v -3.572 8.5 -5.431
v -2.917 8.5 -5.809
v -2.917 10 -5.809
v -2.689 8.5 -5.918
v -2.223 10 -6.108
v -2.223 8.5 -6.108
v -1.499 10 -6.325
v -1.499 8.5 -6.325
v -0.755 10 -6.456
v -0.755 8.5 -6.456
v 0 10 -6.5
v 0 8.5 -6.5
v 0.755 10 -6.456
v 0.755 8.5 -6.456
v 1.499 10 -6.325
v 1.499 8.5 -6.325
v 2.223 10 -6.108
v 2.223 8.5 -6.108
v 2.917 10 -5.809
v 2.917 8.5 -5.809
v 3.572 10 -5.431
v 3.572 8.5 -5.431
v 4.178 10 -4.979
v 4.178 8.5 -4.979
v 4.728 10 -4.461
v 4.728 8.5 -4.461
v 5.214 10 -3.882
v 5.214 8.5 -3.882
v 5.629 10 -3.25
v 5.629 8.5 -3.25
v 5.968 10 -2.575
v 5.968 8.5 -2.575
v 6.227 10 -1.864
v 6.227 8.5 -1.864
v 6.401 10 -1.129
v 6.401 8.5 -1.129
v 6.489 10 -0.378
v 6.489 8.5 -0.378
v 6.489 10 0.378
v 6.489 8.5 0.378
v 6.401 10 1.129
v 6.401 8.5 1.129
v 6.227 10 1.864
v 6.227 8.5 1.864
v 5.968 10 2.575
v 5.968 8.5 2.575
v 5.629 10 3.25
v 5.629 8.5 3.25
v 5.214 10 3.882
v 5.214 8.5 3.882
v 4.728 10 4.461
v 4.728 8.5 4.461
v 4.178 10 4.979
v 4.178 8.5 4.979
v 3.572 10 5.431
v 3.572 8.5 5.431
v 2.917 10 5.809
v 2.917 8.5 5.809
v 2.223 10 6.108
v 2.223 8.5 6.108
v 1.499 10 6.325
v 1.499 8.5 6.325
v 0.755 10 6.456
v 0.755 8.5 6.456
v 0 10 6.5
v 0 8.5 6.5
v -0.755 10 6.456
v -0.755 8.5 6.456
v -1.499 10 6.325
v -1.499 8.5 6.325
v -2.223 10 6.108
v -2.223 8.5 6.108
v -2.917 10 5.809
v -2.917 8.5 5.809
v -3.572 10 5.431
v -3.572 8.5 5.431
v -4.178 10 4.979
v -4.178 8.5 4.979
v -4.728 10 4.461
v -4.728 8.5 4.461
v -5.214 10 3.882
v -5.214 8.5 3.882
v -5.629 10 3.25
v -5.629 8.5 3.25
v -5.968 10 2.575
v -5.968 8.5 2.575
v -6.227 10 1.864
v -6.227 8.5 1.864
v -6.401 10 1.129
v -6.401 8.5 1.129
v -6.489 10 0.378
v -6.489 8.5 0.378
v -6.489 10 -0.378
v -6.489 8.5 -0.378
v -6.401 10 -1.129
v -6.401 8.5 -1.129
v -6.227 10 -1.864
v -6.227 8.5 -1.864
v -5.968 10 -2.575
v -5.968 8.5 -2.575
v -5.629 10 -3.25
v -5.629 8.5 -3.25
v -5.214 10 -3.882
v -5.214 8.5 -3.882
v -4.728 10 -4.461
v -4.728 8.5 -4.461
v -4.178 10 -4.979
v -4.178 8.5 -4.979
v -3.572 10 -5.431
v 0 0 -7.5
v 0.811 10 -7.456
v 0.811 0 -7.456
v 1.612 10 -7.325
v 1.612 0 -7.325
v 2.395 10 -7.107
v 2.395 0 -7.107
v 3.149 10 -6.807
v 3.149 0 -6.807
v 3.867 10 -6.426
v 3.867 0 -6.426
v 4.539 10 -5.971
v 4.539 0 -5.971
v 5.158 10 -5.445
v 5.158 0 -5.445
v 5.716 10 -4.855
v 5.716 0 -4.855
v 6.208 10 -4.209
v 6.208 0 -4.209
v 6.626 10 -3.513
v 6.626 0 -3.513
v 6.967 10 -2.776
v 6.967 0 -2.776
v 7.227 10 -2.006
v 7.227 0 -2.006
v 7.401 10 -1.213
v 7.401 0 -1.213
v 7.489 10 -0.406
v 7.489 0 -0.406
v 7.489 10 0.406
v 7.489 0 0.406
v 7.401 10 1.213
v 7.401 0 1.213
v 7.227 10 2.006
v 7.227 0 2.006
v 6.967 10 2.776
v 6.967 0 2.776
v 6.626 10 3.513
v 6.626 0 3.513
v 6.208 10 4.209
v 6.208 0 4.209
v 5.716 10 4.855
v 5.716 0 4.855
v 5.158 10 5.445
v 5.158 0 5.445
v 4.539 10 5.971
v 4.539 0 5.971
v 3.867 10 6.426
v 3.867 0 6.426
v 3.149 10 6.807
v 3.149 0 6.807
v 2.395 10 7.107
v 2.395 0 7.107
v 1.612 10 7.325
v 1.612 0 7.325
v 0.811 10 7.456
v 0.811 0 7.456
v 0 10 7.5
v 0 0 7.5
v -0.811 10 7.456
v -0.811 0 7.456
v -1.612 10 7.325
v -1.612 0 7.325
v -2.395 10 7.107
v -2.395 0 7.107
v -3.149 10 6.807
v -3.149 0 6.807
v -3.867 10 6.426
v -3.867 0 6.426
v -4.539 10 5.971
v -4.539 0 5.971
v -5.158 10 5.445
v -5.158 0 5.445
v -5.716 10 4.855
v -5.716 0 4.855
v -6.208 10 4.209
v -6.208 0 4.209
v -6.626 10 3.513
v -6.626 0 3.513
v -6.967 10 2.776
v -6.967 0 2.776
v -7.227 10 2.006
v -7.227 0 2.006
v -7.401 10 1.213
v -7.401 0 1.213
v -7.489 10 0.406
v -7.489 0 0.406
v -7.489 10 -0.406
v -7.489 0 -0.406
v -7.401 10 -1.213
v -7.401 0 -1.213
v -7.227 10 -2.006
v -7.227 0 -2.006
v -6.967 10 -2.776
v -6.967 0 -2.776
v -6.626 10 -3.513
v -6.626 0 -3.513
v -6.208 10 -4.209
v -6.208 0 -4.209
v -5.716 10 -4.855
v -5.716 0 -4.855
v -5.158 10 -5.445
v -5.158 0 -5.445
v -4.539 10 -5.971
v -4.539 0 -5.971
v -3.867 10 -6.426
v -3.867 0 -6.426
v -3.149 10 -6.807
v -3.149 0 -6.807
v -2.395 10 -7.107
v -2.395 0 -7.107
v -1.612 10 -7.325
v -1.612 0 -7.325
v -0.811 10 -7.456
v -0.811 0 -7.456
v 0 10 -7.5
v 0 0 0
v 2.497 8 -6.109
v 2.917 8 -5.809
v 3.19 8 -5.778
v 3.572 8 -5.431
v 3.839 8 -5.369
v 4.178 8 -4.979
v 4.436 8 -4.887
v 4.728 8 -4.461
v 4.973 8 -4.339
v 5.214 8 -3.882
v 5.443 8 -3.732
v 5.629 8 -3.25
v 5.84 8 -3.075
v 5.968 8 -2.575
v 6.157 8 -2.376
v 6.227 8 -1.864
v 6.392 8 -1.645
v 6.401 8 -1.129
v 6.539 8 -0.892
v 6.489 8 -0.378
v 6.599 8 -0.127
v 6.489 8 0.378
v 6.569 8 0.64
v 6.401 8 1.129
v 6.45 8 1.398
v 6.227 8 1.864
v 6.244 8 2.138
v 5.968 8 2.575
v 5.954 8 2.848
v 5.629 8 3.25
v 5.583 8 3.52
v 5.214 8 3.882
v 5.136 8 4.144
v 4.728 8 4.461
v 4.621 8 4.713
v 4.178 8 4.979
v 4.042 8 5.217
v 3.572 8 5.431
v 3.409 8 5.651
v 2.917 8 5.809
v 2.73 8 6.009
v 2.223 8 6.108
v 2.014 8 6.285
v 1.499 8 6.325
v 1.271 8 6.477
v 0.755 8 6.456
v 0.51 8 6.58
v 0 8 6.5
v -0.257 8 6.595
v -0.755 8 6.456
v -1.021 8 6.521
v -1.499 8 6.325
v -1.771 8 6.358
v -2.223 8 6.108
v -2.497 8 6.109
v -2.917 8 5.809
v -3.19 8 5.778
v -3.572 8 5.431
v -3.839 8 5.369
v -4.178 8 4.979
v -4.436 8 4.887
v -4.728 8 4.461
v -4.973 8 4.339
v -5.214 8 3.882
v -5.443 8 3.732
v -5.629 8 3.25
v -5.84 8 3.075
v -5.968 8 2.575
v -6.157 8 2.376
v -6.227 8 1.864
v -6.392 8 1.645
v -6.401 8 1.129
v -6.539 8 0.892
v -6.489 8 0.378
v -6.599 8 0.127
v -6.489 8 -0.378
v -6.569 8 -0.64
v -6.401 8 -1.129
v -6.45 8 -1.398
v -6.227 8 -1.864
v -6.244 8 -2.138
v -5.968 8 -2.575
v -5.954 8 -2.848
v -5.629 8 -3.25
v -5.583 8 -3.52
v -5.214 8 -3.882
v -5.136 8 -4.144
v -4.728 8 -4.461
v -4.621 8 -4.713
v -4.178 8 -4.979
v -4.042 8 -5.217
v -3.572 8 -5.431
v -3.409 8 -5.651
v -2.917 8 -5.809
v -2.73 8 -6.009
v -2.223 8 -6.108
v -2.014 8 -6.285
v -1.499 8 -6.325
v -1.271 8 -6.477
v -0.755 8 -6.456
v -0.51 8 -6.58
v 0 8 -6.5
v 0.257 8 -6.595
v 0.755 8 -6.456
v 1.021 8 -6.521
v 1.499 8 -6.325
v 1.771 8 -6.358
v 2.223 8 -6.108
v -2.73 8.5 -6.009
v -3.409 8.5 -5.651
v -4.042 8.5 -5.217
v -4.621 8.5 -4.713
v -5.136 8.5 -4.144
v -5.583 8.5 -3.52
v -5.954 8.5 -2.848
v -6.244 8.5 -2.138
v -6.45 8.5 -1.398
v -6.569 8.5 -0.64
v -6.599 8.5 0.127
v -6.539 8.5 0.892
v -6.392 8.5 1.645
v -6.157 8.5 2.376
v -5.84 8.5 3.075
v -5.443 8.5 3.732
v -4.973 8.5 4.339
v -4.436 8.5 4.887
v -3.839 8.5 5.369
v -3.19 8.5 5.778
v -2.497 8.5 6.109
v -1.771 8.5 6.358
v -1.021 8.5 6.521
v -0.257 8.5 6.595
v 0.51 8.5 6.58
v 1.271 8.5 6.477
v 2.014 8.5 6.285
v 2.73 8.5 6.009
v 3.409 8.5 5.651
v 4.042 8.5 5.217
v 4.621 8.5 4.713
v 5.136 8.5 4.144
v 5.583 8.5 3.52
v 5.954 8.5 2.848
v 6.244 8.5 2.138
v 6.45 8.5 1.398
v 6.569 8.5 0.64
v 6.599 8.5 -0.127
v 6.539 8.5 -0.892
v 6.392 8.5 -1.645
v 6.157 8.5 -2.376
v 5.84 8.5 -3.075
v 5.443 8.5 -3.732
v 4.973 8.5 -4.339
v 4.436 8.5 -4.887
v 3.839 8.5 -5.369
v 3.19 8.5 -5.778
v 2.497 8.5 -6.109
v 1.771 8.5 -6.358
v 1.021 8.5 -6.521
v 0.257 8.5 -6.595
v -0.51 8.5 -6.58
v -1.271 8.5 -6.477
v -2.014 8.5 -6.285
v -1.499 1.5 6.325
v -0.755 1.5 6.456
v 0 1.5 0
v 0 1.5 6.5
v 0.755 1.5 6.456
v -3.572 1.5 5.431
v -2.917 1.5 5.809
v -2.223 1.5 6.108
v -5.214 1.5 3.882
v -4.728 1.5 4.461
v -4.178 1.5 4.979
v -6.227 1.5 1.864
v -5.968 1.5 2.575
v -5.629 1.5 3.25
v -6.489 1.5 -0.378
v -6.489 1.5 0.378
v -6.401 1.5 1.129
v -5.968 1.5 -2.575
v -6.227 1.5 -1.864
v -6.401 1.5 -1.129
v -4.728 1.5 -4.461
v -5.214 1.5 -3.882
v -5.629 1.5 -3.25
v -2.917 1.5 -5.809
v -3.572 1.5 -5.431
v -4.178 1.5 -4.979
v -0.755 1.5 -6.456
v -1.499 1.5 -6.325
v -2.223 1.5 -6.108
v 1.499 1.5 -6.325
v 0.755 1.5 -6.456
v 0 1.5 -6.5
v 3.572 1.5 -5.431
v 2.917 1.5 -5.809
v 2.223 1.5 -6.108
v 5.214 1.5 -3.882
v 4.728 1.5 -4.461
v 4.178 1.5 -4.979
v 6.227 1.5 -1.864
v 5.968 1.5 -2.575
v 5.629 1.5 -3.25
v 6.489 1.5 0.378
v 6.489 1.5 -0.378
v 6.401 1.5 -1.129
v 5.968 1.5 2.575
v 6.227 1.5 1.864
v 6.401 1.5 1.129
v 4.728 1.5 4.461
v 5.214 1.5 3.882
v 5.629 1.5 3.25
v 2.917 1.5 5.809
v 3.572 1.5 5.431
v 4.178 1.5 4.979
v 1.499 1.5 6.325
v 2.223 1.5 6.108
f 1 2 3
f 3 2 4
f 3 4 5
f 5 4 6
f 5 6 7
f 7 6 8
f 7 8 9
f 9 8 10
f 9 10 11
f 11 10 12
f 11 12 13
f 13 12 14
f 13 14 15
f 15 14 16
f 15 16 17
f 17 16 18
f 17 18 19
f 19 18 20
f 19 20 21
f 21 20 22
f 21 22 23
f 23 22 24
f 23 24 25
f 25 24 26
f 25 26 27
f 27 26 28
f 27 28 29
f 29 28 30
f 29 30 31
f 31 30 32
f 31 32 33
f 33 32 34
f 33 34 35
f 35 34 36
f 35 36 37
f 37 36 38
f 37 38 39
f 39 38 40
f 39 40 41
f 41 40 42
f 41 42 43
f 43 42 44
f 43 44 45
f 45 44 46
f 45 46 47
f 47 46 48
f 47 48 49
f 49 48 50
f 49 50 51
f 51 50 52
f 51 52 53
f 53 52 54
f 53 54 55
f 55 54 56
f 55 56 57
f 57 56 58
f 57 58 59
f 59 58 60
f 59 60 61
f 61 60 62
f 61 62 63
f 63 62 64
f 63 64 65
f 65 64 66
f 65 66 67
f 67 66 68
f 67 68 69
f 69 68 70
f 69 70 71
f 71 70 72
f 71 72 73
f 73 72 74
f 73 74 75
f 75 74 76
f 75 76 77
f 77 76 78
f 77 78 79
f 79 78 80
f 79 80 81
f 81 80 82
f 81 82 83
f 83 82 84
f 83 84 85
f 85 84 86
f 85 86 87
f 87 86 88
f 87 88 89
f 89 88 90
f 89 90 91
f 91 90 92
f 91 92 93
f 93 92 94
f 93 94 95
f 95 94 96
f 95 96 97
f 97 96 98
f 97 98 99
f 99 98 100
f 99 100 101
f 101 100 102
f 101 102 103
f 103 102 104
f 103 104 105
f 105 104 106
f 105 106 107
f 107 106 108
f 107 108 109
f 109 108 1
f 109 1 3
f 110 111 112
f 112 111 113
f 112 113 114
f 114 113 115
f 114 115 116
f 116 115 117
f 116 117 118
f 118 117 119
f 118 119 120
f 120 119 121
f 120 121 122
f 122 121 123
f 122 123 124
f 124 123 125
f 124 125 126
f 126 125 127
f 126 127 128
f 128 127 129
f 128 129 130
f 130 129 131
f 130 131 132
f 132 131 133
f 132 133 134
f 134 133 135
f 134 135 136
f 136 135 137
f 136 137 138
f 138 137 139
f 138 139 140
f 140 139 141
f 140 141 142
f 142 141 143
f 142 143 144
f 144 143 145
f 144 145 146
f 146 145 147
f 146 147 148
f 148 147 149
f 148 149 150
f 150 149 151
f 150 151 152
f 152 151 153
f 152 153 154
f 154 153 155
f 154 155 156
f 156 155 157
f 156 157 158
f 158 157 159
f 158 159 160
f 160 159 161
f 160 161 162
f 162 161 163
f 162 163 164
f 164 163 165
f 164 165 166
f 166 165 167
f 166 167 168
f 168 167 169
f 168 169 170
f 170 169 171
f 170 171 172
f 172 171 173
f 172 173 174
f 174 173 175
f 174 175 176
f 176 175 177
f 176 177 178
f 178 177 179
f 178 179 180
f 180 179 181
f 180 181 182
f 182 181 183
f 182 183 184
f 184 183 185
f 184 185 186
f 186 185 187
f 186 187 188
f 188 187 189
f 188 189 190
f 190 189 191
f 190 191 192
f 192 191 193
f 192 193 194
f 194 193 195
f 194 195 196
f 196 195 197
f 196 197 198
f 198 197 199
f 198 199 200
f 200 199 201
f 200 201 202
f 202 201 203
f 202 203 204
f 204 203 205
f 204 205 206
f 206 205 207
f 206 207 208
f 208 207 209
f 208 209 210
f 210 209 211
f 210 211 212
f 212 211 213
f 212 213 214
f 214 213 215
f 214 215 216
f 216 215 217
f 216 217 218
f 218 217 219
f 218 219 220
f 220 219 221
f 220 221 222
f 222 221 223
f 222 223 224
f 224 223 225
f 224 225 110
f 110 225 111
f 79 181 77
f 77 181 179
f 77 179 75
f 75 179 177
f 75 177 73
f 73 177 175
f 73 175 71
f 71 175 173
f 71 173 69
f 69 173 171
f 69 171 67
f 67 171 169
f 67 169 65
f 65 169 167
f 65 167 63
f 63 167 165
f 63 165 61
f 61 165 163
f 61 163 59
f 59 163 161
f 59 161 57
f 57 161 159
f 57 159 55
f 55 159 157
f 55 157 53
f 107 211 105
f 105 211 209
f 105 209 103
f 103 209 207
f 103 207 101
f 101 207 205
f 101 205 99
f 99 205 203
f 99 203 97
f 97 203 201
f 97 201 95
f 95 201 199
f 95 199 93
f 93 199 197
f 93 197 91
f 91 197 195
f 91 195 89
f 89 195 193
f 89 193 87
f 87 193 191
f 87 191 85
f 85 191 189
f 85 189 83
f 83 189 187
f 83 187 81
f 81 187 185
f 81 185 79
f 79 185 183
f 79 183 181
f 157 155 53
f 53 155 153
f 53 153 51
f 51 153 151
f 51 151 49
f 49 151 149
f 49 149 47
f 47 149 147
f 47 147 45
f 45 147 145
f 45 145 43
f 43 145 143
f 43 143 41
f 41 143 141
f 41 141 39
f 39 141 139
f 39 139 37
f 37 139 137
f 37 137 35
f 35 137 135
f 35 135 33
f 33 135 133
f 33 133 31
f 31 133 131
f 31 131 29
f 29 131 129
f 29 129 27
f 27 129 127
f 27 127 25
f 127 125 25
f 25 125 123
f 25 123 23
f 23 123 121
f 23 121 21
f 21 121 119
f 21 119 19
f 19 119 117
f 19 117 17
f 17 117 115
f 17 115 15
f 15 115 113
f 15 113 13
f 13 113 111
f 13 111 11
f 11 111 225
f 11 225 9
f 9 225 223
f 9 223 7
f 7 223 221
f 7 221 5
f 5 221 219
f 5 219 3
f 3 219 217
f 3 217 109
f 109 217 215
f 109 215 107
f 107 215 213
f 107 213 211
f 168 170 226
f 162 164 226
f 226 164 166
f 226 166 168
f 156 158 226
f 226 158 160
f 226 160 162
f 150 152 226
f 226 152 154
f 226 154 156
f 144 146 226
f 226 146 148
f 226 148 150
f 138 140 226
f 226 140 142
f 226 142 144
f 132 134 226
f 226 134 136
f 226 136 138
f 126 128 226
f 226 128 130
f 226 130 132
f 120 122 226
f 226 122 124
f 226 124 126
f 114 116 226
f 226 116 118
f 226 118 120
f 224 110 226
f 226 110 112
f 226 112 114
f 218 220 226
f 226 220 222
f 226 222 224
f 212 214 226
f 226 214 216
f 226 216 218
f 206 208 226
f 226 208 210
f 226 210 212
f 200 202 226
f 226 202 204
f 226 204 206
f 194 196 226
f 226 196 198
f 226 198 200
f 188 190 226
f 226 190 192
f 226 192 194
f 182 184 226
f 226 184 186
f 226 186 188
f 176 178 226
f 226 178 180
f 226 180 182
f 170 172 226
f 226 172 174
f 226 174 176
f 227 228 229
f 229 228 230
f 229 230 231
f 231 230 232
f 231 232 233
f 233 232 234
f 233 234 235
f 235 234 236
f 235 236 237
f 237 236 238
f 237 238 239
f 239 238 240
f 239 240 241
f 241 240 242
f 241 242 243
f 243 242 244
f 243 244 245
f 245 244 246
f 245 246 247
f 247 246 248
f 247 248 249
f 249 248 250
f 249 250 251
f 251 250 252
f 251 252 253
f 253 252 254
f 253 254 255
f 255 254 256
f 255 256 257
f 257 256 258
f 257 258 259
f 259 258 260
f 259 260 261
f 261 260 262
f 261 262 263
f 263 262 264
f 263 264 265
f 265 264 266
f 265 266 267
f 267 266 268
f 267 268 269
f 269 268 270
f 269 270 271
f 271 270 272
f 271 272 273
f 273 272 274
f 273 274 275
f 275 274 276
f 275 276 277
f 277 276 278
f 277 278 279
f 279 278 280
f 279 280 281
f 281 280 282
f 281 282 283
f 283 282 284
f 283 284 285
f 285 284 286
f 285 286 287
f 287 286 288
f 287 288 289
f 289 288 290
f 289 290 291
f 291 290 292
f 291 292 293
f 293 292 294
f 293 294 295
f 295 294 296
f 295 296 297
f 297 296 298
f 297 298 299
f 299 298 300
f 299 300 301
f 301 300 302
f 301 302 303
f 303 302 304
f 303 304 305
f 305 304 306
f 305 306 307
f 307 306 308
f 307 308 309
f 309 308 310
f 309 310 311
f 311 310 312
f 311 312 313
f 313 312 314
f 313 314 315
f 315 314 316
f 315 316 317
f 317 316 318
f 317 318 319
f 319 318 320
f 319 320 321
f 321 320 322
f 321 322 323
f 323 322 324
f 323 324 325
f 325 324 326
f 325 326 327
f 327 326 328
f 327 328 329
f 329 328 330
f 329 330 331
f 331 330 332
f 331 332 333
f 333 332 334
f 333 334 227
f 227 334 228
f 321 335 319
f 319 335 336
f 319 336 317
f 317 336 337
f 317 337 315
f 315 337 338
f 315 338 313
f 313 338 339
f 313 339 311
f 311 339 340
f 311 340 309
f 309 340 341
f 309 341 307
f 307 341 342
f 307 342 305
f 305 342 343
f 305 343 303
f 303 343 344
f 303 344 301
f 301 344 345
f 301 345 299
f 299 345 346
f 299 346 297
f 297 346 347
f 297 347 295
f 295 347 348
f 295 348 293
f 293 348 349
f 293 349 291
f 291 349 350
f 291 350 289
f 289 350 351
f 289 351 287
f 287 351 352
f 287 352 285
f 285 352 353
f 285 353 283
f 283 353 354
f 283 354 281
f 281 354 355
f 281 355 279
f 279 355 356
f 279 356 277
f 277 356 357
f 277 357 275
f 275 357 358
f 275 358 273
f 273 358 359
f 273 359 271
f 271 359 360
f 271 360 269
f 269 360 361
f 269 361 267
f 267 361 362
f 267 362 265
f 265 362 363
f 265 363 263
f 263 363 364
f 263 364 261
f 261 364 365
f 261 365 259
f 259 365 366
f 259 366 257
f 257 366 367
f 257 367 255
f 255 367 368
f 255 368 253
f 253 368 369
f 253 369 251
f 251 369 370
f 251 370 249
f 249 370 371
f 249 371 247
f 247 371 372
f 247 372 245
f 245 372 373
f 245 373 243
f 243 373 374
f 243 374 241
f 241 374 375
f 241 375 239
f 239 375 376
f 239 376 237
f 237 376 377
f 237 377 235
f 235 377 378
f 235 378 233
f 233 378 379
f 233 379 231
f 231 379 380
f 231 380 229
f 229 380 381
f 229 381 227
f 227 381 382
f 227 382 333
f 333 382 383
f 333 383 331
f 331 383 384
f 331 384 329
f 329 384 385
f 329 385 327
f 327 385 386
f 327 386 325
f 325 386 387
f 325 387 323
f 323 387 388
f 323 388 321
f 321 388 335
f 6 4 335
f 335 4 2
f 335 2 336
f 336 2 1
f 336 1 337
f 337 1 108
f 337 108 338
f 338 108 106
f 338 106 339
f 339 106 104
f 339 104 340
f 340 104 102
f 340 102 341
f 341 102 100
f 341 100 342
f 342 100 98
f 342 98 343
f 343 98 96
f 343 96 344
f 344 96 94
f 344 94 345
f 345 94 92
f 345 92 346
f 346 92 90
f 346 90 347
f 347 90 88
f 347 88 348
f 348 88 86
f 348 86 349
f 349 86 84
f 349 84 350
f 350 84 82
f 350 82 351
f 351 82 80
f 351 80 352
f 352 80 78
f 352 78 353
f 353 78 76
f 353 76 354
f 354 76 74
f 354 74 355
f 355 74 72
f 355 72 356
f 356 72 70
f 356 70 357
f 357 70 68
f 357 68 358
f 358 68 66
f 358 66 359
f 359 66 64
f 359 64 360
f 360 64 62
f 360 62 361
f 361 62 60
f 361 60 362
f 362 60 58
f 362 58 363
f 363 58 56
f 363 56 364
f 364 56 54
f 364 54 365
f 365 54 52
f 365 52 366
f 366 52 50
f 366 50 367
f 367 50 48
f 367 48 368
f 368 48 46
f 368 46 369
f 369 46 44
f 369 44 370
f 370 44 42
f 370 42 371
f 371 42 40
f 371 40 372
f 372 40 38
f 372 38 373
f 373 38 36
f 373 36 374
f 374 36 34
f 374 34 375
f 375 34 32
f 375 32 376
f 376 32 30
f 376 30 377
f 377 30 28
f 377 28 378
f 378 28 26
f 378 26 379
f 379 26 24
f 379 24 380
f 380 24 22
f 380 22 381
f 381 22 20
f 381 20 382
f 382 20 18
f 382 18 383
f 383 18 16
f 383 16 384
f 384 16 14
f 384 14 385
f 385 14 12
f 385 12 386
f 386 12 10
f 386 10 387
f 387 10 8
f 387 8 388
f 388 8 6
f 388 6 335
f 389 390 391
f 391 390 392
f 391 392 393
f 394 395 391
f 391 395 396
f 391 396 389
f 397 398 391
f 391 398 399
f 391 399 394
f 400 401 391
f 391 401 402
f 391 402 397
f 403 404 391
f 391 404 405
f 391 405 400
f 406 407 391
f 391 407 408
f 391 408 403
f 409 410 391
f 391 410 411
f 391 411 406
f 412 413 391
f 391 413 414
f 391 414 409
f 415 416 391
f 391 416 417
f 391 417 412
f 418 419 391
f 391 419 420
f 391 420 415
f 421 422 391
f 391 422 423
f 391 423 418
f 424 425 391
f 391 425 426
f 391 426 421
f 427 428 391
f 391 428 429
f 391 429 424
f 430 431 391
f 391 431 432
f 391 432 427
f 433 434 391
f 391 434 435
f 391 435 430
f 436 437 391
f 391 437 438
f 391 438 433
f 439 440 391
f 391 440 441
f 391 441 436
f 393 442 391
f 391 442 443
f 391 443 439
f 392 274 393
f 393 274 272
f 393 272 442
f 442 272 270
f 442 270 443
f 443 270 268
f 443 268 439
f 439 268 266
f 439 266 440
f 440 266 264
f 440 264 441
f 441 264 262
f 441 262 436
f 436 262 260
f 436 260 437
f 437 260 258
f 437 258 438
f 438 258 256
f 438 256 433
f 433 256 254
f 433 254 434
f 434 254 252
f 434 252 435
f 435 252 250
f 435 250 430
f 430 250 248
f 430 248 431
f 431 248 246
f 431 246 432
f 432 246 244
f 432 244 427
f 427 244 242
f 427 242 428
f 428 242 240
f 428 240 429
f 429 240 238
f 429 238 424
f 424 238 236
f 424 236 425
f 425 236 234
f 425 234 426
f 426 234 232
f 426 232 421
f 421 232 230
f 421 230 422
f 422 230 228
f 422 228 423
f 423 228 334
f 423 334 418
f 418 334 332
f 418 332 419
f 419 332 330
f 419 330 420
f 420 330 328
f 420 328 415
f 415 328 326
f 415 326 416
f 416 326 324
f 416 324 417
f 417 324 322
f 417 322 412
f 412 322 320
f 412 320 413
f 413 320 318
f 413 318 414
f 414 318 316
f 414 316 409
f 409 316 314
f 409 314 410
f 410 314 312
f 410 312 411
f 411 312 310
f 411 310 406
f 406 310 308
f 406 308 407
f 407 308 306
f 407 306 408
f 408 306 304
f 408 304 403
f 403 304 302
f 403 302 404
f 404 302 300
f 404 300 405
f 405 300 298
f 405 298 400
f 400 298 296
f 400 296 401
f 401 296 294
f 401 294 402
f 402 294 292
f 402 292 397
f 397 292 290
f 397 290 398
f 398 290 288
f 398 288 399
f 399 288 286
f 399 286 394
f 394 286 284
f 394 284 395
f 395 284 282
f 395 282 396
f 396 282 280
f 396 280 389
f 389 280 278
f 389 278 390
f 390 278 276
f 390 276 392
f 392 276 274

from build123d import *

# Parameters (mm, degrees)
SKETCH1_R           = 7.5
BOSS_EXTRUDE1_DEPTH = 10
SKETCH2_R           = 6.5
CUT_EXTRUDE1_DEPTH  = 8.5
CAVITY1_START       = 8
CAVITY1_OUTLINE_R   = 6.6
CAVITY1_DEPTH       = 0.5


# Read off the part's stored shape, not the designer's step: Cavity1
with BuildPart() as part:
    # Sketch1 → Boss-Extrude1 (new body)
    with BuildSketch(Plane(origin=(0, 0, 0), x_dir=(1, 0, 0), z_dir=(0, 1, 0))):
        with Locations(Location((0, 0, 0), (0, 0, 270))):
            Circle(SKETCH1_R)
    extrude(amount=BOSS_EXTRUDE1_DEPTH)

    # Sketch2 → Cut-Extrude1 (cut)
    with BuildSketch(Plane(origin=(0, 10, 0), x_dir=(1, 0, 0), z_dir=(0, 1, 0))):
        with Locations(Location((0, 0, 0), (0, 0, 270))):
            Circle(SKETCH2_R)
    extrude(amount=-CUT_EXTRUDE1_DEPTH, mode=Mode.SUBTRACT)

    # Cavity1 outline → Cavity1 (cut)
    with BuildSketch(Plane(origin=(0, 0, 0), x_dir=(1, 0, 0), z_dir=(0, 1, 0)).offset(CAVITY1_START)):
        Circle(CAVITY1_OUTLINE_R)
    extrude(amount=CAVITY1_DEPTH, mode=Mode.SUBTRACT)


solid = part.part
